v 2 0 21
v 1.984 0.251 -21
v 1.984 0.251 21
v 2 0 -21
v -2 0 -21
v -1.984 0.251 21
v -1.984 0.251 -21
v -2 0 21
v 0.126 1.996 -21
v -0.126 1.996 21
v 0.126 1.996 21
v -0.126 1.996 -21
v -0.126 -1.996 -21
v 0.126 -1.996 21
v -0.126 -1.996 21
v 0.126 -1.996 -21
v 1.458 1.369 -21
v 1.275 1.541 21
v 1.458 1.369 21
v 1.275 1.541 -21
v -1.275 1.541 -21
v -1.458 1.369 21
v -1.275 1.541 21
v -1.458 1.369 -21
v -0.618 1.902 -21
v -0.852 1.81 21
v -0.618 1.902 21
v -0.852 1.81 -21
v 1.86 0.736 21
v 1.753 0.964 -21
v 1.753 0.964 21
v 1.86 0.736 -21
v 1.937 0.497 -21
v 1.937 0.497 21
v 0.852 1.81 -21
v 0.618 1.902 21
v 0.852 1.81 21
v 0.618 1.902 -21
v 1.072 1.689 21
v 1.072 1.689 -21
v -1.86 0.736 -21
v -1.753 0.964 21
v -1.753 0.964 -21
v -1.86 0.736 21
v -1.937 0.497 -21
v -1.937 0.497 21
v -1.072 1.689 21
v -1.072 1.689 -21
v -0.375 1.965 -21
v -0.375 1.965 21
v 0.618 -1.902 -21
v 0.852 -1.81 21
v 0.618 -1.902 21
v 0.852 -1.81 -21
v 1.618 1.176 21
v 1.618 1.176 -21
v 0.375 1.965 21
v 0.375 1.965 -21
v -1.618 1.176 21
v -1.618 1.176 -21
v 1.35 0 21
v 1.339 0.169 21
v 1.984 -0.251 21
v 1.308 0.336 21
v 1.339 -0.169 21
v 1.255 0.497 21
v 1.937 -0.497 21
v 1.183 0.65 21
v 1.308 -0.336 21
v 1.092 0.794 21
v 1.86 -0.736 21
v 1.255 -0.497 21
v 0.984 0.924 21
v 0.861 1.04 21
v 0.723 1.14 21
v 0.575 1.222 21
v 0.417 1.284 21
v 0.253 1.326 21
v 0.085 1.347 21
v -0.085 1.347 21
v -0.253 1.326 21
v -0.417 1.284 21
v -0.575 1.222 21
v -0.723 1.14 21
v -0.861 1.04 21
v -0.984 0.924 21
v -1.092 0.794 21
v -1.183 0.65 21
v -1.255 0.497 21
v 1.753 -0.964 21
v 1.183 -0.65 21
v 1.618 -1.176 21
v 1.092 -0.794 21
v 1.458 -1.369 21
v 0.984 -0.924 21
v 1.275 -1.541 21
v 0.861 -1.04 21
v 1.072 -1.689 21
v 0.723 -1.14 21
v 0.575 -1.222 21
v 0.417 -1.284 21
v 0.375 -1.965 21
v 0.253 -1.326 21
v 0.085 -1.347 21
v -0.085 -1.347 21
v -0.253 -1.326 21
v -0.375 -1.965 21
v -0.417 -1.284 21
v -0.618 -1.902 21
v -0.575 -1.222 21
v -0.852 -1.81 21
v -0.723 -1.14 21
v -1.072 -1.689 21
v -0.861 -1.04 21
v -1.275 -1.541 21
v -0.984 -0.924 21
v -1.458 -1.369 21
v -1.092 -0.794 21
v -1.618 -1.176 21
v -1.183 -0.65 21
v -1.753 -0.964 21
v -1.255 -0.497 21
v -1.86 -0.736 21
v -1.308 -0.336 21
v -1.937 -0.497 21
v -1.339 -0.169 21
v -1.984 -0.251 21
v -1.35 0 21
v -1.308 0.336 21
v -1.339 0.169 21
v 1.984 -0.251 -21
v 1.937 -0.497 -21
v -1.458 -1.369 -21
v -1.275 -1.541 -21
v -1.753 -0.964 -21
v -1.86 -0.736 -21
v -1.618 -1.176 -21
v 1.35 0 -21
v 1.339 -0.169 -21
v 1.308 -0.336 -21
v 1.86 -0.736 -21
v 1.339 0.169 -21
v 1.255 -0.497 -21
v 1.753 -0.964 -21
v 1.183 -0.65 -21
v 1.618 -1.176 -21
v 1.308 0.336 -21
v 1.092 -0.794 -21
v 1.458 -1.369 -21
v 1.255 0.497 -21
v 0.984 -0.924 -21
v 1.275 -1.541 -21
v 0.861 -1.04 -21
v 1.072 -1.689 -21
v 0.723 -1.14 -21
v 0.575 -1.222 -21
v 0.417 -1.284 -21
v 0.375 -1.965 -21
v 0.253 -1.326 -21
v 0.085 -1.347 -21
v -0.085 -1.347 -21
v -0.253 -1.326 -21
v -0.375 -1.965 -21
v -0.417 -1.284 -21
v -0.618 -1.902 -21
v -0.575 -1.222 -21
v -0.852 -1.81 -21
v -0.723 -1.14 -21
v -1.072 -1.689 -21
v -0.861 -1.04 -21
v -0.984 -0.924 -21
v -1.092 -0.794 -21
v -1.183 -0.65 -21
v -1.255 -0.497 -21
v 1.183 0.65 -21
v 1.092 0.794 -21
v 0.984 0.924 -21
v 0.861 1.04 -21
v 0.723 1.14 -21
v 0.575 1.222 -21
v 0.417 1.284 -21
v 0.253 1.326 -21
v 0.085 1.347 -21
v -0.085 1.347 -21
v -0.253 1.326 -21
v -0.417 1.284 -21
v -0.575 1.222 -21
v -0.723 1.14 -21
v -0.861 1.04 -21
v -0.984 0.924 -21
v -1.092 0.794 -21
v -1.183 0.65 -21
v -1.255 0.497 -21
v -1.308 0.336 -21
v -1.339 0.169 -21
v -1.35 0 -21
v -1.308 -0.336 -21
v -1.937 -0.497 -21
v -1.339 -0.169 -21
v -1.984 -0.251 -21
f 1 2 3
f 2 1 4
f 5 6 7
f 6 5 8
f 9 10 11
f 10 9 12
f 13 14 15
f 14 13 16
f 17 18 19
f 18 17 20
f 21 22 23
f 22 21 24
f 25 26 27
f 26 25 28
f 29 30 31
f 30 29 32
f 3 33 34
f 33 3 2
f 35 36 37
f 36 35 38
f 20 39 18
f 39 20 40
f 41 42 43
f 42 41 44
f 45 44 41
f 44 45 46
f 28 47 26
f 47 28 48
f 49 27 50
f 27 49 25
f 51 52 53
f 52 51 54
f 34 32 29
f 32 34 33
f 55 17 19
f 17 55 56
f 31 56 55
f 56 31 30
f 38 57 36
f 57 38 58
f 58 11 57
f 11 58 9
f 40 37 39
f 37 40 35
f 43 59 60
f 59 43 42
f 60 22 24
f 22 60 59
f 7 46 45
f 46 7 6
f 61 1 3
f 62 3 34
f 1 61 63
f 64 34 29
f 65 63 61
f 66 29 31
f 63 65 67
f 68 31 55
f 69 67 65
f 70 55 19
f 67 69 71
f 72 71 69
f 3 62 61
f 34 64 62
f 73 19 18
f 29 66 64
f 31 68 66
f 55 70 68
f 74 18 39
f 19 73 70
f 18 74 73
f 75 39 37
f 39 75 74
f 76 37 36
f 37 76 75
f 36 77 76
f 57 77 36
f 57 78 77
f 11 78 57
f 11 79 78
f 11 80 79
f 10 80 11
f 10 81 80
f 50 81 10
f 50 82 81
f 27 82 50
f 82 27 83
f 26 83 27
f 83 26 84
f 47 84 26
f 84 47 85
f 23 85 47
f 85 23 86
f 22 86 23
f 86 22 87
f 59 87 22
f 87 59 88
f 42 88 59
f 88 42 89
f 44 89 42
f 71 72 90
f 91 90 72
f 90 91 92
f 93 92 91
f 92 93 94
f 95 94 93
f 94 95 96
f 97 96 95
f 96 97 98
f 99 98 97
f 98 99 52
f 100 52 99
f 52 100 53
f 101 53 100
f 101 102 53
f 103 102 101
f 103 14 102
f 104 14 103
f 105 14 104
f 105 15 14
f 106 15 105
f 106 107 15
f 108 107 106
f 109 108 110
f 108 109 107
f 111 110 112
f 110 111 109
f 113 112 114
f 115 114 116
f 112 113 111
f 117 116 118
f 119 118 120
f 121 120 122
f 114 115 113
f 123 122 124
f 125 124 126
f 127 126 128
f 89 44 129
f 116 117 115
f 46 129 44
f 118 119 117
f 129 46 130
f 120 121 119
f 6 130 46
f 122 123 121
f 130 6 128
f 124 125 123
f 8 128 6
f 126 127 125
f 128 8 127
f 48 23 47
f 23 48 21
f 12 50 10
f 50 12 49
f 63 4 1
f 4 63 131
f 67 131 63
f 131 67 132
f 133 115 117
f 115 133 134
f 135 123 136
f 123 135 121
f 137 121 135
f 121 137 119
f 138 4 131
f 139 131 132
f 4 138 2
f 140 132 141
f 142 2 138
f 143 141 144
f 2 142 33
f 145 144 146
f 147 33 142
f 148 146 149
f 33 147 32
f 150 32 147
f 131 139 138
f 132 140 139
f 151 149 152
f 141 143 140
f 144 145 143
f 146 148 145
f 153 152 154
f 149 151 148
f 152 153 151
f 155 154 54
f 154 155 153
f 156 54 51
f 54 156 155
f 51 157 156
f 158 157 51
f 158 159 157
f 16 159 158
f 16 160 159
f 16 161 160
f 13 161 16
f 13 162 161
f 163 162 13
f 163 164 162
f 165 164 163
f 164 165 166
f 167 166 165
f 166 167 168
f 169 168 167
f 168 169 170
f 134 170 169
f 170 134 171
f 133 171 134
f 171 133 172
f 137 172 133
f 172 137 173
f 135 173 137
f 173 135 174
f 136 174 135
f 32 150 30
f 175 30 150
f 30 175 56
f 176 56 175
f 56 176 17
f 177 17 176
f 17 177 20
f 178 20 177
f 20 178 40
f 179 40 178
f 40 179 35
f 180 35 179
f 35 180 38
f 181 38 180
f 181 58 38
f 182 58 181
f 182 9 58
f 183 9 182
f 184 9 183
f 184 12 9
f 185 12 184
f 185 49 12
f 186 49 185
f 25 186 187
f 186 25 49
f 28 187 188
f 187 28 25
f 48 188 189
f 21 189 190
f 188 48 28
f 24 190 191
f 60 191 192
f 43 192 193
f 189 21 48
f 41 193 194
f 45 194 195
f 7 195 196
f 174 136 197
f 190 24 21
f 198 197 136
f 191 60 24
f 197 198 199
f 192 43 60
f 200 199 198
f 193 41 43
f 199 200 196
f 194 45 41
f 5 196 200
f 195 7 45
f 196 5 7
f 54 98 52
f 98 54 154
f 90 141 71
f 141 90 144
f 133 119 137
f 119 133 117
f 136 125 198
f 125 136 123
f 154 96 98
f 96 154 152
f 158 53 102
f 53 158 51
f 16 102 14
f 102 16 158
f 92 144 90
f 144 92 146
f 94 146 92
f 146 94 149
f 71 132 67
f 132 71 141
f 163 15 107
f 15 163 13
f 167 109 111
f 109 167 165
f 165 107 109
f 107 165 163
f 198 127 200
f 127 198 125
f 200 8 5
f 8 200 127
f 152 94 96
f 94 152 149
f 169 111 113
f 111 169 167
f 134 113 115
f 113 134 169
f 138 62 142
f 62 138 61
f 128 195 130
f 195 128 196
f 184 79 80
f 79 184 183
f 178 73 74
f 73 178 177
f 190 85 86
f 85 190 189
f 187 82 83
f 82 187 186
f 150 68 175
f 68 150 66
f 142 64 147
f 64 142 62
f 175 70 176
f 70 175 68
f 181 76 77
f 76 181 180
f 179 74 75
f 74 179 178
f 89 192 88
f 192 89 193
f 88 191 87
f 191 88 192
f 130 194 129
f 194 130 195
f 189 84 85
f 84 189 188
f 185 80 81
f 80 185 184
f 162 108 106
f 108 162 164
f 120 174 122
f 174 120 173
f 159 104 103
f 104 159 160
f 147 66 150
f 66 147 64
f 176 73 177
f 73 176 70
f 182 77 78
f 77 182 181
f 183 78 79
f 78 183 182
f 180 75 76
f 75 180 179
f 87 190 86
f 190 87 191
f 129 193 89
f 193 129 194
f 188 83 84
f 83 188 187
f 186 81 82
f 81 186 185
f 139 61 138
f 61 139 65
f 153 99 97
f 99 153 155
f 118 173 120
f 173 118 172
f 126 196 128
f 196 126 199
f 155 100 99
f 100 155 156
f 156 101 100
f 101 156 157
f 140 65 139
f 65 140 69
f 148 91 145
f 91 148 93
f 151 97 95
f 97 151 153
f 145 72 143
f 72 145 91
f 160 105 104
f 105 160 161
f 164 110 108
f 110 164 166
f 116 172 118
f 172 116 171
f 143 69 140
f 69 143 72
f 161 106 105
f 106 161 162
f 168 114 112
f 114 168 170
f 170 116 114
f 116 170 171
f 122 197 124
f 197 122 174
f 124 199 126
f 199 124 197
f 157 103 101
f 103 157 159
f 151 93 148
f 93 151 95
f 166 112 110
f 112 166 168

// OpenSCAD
$fn = 50;


difference() {
	union() {
		translate(v = [0, 0, -21.0000000000]) {
			cylinder(h = 42, r = 2.0000000000);
		}
	}
	union() {
		translate(v = [0, 0, -100.0000000000]) {
			cylinder(h = 200, r = 1.3500000000);
		}
	}
}
